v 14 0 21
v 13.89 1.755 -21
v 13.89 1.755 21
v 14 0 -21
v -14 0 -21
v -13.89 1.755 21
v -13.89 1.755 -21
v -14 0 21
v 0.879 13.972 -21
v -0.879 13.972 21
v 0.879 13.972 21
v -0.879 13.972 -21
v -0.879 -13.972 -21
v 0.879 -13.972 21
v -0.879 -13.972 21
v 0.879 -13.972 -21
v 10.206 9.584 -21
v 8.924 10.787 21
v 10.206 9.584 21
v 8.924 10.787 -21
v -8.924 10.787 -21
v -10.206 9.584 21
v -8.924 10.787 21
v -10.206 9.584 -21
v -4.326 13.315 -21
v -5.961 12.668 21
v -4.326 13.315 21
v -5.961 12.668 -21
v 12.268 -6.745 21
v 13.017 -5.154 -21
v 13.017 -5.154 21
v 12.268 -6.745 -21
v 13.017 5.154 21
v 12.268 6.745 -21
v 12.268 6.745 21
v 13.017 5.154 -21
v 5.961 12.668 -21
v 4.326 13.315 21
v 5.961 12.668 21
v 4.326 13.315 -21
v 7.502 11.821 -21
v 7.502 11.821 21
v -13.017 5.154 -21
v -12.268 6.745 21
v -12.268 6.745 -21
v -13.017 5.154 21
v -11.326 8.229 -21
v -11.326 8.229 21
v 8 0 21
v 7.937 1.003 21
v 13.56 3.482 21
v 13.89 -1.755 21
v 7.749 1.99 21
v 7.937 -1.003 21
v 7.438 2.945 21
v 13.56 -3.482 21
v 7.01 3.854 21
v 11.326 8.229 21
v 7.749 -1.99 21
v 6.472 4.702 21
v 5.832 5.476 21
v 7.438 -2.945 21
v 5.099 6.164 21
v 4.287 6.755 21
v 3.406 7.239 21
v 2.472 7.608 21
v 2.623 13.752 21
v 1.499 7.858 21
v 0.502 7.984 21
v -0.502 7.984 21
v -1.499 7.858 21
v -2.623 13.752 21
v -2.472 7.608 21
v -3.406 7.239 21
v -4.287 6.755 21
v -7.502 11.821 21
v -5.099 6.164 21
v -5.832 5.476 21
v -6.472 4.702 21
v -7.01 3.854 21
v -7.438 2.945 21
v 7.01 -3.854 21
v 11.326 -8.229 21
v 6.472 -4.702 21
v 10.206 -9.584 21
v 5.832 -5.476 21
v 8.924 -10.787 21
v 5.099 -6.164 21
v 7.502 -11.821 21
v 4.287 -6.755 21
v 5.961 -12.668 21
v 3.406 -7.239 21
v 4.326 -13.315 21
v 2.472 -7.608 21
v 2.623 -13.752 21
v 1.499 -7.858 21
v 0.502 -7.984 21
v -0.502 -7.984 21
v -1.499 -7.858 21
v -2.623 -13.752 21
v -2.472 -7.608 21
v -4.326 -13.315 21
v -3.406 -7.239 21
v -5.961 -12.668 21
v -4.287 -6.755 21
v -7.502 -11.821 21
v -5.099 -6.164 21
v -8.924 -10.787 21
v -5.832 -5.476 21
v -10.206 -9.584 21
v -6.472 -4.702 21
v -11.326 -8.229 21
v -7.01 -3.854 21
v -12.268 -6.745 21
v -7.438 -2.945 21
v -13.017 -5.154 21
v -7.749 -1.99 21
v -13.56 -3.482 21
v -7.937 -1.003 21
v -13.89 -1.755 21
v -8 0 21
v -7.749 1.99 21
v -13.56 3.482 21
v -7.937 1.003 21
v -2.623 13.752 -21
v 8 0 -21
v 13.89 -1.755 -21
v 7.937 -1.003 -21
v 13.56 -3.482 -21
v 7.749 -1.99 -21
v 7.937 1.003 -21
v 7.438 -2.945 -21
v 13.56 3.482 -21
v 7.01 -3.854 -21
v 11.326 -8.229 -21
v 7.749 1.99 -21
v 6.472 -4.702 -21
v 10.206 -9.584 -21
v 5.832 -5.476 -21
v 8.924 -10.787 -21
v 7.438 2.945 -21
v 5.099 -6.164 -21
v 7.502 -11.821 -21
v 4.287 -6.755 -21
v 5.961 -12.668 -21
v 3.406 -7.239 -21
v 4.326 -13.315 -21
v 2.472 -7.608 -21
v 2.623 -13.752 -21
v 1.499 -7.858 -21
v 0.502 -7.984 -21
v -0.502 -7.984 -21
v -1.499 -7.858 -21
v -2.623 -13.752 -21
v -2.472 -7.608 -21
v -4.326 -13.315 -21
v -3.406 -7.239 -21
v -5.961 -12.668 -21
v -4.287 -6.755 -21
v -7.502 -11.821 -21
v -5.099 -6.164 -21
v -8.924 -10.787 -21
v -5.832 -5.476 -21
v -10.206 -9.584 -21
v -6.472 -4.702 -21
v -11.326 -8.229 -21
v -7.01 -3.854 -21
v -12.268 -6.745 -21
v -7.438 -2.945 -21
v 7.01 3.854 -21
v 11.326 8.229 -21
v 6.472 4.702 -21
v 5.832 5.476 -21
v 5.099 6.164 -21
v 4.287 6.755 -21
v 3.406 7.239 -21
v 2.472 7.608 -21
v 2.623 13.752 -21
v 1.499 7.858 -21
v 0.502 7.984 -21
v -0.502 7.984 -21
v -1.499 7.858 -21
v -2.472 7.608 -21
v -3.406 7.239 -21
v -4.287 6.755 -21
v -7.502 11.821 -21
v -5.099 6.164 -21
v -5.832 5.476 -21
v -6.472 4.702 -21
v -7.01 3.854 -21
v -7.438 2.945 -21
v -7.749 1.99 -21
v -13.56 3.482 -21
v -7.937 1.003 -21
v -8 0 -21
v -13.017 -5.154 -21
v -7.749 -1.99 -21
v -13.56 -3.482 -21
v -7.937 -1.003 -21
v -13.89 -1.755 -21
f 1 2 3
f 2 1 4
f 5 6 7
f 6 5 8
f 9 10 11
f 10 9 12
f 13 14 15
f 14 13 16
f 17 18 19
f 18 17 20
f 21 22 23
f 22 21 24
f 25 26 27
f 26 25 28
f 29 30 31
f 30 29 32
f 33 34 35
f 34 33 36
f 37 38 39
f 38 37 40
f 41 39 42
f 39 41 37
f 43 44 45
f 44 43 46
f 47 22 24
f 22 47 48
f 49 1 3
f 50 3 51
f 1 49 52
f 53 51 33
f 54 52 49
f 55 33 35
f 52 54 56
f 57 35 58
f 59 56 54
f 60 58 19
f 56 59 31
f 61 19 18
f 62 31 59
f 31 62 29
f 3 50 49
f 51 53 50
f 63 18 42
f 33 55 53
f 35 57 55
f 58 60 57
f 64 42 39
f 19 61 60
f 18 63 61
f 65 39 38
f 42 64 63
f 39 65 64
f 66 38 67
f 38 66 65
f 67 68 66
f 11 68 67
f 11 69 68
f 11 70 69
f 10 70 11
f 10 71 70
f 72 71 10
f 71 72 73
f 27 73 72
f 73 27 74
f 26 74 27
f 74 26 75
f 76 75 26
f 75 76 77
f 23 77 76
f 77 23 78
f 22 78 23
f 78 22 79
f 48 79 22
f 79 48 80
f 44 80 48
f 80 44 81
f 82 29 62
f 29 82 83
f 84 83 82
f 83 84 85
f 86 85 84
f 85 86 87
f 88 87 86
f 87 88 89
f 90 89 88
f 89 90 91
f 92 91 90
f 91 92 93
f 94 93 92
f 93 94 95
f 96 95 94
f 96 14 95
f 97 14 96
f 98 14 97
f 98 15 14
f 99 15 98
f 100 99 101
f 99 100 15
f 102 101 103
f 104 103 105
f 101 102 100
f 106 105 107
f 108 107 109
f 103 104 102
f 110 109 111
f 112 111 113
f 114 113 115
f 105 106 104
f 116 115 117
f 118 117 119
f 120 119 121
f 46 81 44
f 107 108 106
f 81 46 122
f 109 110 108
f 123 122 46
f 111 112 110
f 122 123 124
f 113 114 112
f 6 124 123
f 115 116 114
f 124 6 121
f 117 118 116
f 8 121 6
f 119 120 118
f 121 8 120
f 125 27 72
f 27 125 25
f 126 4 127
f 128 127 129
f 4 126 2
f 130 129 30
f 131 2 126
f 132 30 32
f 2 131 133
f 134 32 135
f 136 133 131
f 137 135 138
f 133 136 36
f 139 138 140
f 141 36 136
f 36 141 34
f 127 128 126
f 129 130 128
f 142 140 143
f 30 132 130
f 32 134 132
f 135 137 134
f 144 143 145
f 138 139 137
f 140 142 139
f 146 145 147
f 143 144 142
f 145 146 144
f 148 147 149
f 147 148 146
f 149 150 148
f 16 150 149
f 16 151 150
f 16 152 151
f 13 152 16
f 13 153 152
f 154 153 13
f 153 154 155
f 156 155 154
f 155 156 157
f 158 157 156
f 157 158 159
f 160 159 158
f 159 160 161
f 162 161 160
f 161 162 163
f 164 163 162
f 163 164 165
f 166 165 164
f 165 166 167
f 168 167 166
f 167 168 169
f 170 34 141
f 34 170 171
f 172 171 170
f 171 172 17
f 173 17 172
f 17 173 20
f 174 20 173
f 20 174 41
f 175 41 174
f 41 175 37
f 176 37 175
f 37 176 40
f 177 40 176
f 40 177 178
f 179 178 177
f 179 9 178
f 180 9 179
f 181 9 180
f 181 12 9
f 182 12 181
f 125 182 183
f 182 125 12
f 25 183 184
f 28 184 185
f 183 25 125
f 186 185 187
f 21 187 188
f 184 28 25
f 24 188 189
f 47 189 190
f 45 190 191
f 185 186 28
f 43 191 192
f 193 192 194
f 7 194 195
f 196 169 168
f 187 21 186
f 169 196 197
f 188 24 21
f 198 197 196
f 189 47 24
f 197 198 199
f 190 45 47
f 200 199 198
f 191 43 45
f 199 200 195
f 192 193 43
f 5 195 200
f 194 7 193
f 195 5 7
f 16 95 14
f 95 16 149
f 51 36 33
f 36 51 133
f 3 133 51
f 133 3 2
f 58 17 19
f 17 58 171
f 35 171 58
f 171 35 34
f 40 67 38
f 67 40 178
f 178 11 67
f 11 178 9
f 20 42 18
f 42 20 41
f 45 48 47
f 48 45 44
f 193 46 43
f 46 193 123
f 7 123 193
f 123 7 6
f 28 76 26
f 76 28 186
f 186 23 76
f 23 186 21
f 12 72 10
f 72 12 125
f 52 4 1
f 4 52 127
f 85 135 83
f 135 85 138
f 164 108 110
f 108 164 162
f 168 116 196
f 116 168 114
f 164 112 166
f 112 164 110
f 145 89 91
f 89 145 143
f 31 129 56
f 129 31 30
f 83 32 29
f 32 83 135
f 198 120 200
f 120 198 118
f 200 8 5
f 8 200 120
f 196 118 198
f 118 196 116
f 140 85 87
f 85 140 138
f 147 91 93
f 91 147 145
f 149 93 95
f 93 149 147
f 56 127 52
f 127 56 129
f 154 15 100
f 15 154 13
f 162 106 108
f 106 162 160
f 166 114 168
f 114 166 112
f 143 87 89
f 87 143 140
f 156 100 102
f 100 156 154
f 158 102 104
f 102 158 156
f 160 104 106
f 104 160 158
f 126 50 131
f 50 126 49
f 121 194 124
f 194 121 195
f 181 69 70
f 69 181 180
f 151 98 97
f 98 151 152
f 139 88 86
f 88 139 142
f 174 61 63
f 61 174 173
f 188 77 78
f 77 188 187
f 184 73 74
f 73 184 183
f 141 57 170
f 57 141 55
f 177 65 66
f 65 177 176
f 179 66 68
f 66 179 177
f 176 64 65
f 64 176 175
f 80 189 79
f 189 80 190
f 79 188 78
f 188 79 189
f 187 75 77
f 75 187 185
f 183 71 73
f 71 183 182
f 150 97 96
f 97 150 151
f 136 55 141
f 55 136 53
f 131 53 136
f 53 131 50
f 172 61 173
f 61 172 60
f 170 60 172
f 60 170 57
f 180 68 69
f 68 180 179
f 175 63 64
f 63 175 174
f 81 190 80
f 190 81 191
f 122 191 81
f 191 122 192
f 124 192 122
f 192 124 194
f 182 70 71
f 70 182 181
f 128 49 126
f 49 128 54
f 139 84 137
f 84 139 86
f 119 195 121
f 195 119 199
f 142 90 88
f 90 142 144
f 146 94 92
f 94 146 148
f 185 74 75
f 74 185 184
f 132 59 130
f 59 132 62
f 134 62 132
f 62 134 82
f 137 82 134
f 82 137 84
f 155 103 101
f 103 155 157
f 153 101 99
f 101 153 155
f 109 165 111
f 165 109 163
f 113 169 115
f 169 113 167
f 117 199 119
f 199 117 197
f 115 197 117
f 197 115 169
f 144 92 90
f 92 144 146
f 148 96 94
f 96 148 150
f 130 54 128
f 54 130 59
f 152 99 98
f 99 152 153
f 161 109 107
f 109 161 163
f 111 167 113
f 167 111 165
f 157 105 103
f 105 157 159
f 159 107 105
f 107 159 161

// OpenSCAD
$fn = 50;


difference() {
	union() {
		translate(v = [0, 0, -21.0000000000]) {
			cylinder(h = 42, r = 14.0000000000);
		}
	}
	union() {
		translate(v = [0, 0, -100.0000000000]) {
			cylinder(h = 200, r = 8);
		}
	}
}
